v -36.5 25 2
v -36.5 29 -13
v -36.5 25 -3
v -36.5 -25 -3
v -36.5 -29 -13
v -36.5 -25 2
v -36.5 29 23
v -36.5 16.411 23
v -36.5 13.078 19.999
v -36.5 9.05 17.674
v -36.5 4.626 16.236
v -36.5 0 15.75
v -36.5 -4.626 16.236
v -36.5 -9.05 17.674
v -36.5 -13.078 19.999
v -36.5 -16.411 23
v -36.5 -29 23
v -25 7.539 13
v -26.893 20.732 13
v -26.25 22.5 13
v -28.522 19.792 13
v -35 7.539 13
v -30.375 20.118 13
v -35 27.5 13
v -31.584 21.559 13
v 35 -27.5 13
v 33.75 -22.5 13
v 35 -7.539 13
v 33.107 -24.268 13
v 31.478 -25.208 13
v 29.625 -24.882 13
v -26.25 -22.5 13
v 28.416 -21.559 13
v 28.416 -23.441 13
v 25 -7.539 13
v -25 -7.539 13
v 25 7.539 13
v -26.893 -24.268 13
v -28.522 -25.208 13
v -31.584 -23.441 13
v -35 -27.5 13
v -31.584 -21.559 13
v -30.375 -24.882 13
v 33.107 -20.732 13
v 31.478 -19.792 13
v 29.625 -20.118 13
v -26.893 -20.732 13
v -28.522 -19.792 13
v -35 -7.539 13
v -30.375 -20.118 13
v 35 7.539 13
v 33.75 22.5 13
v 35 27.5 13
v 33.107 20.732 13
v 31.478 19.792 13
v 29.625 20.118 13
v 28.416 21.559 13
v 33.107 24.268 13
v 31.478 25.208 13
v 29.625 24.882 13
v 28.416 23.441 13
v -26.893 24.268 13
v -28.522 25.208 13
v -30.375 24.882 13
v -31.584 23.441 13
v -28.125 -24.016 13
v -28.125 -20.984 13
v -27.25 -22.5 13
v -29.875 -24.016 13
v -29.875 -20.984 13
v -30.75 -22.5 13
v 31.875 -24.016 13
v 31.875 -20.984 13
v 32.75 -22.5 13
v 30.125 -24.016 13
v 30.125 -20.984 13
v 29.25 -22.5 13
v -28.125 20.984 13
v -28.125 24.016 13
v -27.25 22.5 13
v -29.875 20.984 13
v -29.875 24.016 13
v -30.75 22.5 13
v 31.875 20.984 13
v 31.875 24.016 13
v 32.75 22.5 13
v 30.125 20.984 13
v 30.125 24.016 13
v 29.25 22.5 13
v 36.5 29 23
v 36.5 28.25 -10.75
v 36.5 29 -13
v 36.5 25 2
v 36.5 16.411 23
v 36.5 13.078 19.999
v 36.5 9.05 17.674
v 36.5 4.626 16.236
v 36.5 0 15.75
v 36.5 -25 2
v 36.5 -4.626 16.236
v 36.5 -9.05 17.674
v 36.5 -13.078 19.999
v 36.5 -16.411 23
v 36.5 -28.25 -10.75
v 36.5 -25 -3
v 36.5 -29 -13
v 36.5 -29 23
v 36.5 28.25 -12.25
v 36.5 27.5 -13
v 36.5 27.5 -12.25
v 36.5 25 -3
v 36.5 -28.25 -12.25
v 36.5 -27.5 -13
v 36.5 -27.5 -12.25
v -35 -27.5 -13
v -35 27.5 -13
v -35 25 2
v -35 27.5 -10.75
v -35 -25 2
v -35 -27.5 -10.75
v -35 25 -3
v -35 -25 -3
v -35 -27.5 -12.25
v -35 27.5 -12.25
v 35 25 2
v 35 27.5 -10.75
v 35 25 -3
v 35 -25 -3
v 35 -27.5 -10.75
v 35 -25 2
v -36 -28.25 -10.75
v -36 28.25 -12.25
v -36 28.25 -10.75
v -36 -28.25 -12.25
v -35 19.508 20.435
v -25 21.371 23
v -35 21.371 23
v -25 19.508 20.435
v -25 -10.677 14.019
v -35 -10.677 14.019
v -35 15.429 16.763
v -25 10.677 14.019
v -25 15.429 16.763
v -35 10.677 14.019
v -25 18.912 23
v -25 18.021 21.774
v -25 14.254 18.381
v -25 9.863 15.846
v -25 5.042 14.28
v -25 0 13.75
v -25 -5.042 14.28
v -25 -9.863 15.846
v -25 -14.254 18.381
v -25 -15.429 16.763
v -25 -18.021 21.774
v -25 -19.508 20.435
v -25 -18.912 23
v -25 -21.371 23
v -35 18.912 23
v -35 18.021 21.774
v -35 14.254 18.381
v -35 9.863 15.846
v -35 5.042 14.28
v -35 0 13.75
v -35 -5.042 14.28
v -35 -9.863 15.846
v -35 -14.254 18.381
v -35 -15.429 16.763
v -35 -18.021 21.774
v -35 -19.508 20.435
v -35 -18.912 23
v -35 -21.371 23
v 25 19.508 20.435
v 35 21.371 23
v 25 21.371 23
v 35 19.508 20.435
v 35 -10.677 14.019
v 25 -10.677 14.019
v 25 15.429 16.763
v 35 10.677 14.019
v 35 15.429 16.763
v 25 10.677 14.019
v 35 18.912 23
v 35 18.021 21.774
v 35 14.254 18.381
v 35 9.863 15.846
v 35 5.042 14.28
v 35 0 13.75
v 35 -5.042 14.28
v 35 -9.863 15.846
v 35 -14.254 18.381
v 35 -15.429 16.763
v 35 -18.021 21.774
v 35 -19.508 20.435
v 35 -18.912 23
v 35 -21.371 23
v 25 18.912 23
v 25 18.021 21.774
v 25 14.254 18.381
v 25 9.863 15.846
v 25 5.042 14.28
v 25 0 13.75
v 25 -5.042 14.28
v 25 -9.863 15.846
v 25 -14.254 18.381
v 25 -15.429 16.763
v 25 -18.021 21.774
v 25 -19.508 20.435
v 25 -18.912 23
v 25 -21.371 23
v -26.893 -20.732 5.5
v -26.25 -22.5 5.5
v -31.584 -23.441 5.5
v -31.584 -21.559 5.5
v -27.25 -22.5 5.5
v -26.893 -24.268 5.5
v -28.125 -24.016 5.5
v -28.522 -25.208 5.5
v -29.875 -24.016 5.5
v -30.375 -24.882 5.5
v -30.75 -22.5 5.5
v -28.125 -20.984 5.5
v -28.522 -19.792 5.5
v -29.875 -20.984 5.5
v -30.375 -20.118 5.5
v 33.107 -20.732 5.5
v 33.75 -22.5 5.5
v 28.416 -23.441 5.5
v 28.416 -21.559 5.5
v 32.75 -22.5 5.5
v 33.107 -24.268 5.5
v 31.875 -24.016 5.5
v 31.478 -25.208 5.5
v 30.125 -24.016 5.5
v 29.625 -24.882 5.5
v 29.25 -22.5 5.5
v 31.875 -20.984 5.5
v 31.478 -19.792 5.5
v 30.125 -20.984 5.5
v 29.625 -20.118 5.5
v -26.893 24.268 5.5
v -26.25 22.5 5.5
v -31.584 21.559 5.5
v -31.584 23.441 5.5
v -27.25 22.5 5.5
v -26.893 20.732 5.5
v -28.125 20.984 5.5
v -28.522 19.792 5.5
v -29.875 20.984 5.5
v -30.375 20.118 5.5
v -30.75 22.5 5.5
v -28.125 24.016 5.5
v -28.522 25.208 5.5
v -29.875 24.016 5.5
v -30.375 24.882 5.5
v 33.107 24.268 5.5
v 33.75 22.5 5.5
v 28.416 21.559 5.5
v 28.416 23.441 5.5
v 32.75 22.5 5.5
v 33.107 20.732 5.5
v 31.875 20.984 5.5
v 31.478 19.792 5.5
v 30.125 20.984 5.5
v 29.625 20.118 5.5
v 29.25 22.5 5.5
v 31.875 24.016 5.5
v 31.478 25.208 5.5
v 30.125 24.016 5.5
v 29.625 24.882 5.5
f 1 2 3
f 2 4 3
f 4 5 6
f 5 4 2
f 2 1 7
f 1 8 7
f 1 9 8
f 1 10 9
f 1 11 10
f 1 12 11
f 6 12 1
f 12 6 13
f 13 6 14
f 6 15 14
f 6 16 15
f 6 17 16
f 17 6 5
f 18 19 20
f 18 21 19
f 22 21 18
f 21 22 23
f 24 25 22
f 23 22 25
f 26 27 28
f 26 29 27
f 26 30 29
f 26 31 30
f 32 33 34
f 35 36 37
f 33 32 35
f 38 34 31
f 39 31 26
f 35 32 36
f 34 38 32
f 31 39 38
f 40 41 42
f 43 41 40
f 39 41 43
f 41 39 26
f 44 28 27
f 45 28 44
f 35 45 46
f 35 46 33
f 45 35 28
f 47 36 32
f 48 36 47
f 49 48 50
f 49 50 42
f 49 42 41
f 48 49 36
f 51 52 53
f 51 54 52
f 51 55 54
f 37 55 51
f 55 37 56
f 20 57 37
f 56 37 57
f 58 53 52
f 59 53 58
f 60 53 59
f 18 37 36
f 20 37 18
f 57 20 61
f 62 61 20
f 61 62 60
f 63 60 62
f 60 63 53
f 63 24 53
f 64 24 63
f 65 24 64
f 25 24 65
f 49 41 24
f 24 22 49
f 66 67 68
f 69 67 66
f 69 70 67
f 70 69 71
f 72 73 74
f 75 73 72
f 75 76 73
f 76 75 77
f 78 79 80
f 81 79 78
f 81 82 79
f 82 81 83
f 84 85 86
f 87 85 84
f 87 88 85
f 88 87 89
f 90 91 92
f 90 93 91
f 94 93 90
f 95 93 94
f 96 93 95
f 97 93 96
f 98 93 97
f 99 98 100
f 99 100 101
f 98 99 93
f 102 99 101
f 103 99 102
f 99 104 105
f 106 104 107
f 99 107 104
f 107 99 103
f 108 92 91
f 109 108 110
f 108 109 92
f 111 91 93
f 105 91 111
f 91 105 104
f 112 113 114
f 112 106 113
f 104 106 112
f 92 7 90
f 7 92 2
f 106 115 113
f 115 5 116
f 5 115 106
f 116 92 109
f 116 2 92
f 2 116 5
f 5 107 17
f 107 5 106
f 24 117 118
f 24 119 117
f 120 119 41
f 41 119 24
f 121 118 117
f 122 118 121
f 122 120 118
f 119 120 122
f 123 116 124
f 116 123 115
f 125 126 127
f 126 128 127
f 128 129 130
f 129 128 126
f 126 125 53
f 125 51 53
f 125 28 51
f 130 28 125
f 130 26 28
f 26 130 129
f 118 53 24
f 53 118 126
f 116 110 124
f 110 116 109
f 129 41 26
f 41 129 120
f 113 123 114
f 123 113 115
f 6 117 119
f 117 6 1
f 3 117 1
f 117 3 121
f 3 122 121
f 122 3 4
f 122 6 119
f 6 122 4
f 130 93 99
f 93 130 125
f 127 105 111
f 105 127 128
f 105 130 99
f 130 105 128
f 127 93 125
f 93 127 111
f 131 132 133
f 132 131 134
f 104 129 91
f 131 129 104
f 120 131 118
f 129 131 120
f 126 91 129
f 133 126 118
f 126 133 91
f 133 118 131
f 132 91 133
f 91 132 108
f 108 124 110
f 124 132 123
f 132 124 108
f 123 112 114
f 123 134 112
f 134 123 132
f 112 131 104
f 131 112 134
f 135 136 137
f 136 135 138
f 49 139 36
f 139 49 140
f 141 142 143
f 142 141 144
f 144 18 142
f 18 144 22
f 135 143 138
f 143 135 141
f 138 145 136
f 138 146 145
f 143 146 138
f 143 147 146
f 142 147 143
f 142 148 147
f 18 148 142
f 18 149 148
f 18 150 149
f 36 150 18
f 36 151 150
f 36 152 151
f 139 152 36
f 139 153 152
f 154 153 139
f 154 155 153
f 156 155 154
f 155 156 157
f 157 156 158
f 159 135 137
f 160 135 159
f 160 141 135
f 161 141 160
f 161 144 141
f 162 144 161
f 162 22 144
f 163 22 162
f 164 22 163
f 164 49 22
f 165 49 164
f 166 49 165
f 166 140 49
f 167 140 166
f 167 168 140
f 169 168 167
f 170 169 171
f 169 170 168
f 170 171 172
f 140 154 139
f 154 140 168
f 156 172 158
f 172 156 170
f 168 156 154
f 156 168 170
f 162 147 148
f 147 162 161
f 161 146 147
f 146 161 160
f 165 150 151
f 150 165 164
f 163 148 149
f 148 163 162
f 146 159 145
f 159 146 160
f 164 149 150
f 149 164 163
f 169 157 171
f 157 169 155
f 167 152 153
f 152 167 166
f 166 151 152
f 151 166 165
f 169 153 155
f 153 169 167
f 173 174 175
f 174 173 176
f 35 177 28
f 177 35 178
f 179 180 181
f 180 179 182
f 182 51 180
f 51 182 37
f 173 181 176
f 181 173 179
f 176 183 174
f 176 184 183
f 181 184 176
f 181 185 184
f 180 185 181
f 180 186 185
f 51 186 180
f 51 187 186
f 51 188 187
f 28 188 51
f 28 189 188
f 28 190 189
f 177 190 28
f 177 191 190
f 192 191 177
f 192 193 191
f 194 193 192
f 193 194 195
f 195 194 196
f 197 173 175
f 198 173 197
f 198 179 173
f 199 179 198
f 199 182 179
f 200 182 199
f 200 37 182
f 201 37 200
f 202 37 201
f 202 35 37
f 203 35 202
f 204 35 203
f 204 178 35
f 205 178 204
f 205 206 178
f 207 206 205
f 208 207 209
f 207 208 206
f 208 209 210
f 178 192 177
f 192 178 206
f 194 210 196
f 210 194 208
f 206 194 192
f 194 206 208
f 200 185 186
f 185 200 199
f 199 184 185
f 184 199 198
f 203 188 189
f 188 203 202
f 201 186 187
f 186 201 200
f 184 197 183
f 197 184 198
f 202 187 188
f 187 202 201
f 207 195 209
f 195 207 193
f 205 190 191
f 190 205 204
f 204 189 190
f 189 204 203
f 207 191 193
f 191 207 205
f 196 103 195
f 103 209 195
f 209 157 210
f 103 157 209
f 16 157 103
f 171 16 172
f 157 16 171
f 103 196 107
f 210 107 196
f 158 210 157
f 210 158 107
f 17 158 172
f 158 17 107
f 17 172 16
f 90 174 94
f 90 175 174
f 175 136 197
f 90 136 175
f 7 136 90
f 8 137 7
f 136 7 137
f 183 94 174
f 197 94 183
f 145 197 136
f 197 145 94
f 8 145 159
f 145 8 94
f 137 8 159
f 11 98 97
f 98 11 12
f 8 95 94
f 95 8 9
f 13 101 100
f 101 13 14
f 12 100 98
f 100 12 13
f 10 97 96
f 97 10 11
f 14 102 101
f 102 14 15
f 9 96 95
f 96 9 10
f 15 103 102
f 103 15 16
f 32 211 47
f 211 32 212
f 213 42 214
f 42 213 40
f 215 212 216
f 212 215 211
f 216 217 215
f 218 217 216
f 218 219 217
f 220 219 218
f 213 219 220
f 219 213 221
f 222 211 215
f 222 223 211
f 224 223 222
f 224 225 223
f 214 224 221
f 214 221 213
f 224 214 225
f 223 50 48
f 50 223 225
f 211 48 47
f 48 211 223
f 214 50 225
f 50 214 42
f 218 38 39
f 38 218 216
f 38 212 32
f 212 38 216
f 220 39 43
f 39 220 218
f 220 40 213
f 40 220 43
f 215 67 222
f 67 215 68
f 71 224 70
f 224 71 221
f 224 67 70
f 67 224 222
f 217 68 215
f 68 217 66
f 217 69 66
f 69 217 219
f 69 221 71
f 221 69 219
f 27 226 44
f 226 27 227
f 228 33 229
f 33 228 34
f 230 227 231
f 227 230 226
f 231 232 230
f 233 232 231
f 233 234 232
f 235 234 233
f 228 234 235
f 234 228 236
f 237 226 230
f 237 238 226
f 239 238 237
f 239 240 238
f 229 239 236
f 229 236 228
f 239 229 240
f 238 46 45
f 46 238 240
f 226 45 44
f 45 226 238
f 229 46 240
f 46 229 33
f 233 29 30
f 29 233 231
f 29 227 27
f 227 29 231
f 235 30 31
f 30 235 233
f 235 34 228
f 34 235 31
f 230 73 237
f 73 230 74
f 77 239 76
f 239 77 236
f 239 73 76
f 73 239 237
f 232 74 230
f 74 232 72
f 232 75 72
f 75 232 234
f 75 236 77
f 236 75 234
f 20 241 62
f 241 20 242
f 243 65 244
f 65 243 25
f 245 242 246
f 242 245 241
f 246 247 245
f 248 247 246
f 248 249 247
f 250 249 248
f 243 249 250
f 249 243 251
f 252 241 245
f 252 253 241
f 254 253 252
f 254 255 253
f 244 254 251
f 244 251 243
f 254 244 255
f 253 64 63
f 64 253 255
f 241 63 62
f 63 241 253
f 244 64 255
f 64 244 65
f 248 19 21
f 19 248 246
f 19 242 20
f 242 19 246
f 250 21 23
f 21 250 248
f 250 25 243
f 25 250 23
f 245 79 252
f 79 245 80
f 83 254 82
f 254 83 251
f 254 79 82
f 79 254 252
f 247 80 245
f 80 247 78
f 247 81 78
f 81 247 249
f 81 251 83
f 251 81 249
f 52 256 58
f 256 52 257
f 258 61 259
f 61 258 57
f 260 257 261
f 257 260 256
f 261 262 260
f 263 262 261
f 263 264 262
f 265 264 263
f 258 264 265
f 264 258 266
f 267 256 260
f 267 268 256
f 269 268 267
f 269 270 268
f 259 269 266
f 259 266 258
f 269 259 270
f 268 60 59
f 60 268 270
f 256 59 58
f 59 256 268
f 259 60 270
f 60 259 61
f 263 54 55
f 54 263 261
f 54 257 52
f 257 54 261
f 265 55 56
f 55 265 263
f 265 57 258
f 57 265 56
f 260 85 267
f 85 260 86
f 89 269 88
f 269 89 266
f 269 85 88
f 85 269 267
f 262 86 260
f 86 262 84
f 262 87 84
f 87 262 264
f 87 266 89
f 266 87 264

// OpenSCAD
module pcb_board()
{
    color( "LimeGreen", 1.0 ) 
           cube(size = [70 , 55 , 1.65] , center = true);
    
}
module screw_hole()
{
   difference() 
    {
         cylinder(9,2.75,2.75, true );
         cylinder(12.5,1.75,1.75, true); 
    }   
}


module strap_hole()
{
   difference() 
    {
         cylinder(r = 26.25, h = 10, center = false);
         cylinder(r = 24.25, h = 12, center = false);
    }   
}
module cozy_linear_actuator_board_case(wall_thickness=1, inside_size_x=20,inside_size_y=20,height=26,side=10)
{
    
    difference() 
    {
       cube([inside_size_x+wall_thickness, inside_size_y+wall_thickness, height], center = true);
       cube([inside_size_x, inside_size_y, height+2], center = true);
        
        //dsub connector
       //translate([inside_size_x/2+2, 0, -3])rotate([0,270,0])dsub(1.1,17.04,1);
        
        //cut the hole for the connector 
       translate([-inside_size_x/2-5.5, -25, -3])cube([7,50,5]);
        
        //cut the hole for the connector 
       translate([inside_size_x/2-5.5, -25, -3])cube([7,50,5]);
      
       //cut a hole for the lid  
       translate([3, 0, -height/2+1.5])cube([inside_size_x+wall_thickness+5, inside_size_y+wall_thickness-1.5, 1.5], center = true);
        
       //cut the lip of the hole for the lid
        
      translate([3, 0, -height/2])cube([inside_size_x+wall_thickness, inside_size_y+wall_thickness-3, 2.5], center = true); 
    }
     
    
    difference() 
    {
     translate([0, 0, height/2+5])
        
     //base of the case   
     cube([inside_size_x+wall_thickness, inside_size_y+wall_thickness, wall_thickness+7], center = true);
     //cut holes for screws
     //translate([inside_size_x/2+side/2+1, inside_size_y/2-5, 0])cylinder(15,2.75,2.75, false);
     //translate([inside_size_x/2+side/2+1, -inside_size_y/2+5, 0])cylinder(15,2.75,2.75, false);
     //translate([-inside_size_x/2-side/2-1,inside_size_y/2-5, 0])cylinder(15,2.75,2.75, false);
     //translate([-inside_size_x/2-side/2-1,-inside_size_y/2+5, 0])cylinder(15,2.75,2.75, false);
        
     translate([-35, 0, height+12])rotate(a=[0,90,0])strap_hole();
     translate([25, 0, height+12])rotate(a=[0,90,0])strap_hole();
     translate([-60, 0, height+12])rotate(a=[0,90,0])cylinder(r = 22.25, h = 150, center = false);
    }
    
    
    
    //pcb standoff and hole 
    translate([-inside_size_x/2+side/2+1, -inside_size_y/2+5, height/2-3])screw_hole();
    translate([inside_size_x/2-side/2+1, -inside_size_y/2+5, height/2-3])screw_hole();
    
   translate([-inside_size_x/2+side/2+1, inside_size_y/2-5, height/2-3])screw_hole();
     translate([inside_size_x/2-side/2+1, inside_size_y/2-5, height/2-3])screw_hole();
   
}


cozy_linear_actuator_board_case(3,70,55);

//pcb size is 57.46 X35.84
 //pcb_board();

//strap_hole();
